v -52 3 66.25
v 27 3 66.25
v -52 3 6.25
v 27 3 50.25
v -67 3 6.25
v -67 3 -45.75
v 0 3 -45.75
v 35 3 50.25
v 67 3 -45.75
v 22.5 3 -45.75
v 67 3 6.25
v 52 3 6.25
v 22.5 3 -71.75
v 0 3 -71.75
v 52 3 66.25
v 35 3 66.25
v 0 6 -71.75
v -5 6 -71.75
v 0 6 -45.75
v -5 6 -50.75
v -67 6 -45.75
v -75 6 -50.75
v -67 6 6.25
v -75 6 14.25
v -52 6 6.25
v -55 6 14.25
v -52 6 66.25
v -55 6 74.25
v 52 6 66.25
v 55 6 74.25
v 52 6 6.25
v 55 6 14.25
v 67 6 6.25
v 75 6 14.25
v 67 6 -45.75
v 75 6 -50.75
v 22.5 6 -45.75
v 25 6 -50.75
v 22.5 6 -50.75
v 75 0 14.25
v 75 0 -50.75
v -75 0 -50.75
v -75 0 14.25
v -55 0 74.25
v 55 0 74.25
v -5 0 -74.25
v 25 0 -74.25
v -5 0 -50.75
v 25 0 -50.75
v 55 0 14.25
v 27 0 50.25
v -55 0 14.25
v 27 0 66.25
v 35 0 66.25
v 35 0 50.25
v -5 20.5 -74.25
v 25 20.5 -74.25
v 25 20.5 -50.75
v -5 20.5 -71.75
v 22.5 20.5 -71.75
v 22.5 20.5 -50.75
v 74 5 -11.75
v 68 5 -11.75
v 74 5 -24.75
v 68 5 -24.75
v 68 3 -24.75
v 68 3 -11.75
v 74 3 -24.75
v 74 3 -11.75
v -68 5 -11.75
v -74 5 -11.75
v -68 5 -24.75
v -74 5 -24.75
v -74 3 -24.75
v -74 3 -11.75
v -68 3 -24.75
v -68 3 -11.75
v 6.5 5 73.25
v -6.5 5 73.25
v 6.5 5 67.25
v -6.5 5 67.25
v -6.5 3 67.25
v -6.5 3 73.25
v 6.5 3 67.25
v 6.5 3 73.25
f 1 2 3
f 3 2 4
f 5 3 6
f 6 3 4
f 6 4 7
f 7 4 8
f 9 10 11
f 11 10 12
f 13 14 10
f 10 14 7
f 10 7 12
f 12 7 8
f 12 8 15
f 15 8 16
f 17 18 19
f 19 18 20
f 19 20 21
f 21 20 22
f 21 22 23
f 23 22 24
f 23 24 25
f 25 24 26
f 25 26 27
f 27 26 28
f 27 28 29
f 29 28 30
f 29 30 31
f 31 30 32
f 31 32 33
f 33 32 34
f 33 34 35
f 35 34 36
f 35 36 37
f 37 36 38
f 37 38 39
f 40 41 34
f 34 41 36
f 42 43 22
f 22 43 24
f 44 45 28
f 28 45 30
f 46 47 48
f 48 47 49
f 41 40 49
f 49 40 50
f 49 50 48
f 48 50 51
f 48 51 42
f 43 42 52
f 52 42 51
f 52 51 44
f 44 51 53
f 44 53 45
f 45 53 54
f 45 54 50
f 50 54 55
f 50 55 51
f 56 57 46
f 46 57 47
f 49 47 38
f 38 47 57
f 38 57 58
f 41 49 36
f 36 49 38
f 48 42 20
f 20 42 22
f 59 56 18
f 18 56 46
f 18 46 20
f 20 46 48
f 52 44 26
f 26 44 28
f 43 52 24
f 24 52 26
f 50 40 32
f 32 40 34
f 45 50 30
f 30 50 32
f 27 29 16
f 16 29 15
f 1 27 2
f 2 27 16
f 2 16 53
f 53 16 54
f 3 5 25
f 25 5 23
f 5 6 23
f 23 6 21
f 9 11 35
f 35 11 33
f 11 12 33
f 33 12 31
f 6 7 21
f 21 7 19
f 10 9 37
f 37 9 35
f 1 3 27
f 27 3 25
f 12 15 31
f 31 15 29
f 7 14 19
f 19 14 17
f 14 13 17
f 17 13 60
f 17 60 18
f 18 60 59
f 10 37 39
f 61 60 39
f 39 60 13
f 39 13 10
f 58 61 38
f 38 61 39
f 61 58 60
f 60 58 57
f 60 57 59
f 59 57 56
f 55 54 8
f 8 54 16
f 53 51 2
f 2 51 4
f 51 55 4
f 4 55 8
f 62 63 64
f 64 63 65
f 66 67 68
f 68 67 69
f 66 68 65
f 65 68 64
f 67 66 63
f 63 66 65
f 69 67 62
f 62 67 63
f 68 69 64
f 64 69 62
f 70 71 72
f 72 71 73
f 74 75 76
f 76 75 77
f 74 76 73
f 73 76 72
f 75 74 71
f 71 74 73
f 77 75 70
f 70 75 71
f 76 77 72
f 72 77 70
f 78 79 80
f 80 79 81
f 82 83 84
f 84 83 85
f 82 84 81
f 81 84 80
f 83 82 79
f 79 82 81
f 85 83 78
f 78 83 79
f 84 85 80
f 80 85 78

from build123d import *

# Parameters (mm, degrees)
CROQUIS1_W              = 150
CROQUIS1_H              = 148.5
SALIENTE_EXTRUIR1_DEPTH = 6
CROQUIS2_W              = 50
CROQUIS2_H              = 23.5
CROQUIS2_W_2            = 70
CROQUIS2_W_3            = 20
CROQUIS2_H_2            = 60
CORTAR_EXTRUIR2_DEPTH   = 8
CORTAR_EXTRUIR3_DEPTH   = 3
CROQUIS4_W              = 134
CROQUIS4_H              = 3
CROQUIS4_W_2            = 5
CROQUIS4_H_2            = 60
CROQUIS4_W_3            = 22.5
CROQUIS4_H_3            = 5.5
CORTAR_EXTRUIR4_DEPTH   = 3
CROQUIS5_W              = 3
CROQUIS5_H              = 20.5
CROQUIS5_W_2            = 5.5
CORTAR_EXTRUIR5_DEPTH   = 3
SALIENTE_EXTRUIR3_DEPTH = 14.5
CROQUIS8_W              = 6
CROQUIS8_H              = 13
CROQUIS8_W_2            = 13
CROQUIS8_H_2            = 6
CORTAR_EXTRUIR6_DEPTH   = 3
CROQUIS9_W              = 8
CROQUIS9_H              = 16
CORTAR_EXTRUIR7_DEPTH   = 107.978093552
SALIENTE_EXTRUIR4_DEPTH = 1


with BuildPart() as part:
    # Croquis1 → Saliente-Extruir1 (new body)
    with BuildSketch(Plane(origin=(0, 0, 0), x_dir=(1, 0, 0), z_dir=(0, 1, 0))):
        Rectangle(CROQUIS1_W, CROQUIS1_H)
    extrude(amount=SALIENTE_EXTRUIR1_DEPTH)

    # Croquis2 → Cortar-Extruir2 (cut)
    with BuildSketch(Plane(origin=(0, 6, 0), x_dir=(1, 0, 0), z_dir=(0, 1, 0))):
        with Locations((50, 62.5)):
            Rectangle(CROQUIS2_W, CROQUIS2_H)
        with Locations((-40, 62.5)):
            Rectangle(CROQUIS2_W_2, CROQUIS2_H)
        with Locations((-65, -44.25)):
            Rectangle(CROQUIS2_W_3, CROQUIS2_H_2)
        with Locations((65, -44.25)):
            Rectangle(CROQUIS2_W_3, CROQUIS2_H_2)
    extrude(amount=-CORTAR_EXTRUIR2_DEPTH, mode=Mode.SUBTRACT)

    # Croquis3 → Cortar-Extruir3 (cut)
    with BuildSketch(Plane(origin=(0, 6, 0), x_dir=(1, 0, 0), z_dir=(0, 1, 0))):
        Polygon((47, -6.25), (67, -6.25), (67, 42.75), (17, 42.75), (17, 66.25), (3, 66.25), (3, 42.75), (-67, 42.75), (-67, -6.25), (-47, -6.25), (-47, -66.25), (47, -66.25), align=None)
    extrude(amount=-CORTAR_EXTRUIR3_DEPTH, mode=Mode.SUBTRACT)

    # Croquis4 → Cortar-Extruir4 (cut)
    with BuildSketch(Plane(origin=(0, 6, 0), x_dir=(1, 0, 0), z_dir=(0, 1, 0))):
        with Locations((0, 44.25)):
            Rectangle(CROQUIS4_W, CROQUIS4_H)
        with Locations((-49.5, -36.25)):
            Rectangle(CROQUIS4_W_2, CROQUIS4_H_2)
        with Locations((49.5, -36.25)):
            Rectangle(CROQUIS4_W_2, CROQUIS4_H_2)
        with Locations((11.25, 69)):
            Rectangle(CROQUIS4_W_3, CROQUIS4_H_3)
    extrude(amount=-CORTAR_EXTRUIR4_DEPTH, mode=Mode.SUBTRACT)

    # Croquis5 → Cortar-Extruir5 (cut)
    with BuildSketch(Plane(origin=(0, 6, 0), x_dir=(1, 0, 0), z_dir=(0, 1, 0))):
        with Locations((1.5, 56)):
            Rectangle(CROQUIS5_W, CROQUIS5_H)
        with Locations((19.75, 56)):
            Rectangle(CROQUIS5_W_2, CROQUIS5_H)
    extrude(amount=-CORTAR_EXTRUIR5_DEPTH, mode=Mode.SUBTRACT)

    # Croquis7 → Saliente-Extruir3 (add)
    with BuildSketch(Plane(origin=(0, 6, 0), x_dir=(1, 0, 0), z_dir=(0, 1, 0))):
        Polygon((25, 50.75), (25, 74.25), (-5, 74.25), (-5, 71.75), (22.5, 71.75), (22.5, 50.75), align=None)
    extrude(amount=SALIENTE_EXTRUIR3_DEPTH)

    # Croquis8 → Cortar-Extruir6 (cut)
    with BuildSketch(Plane(origin=(0, 6, 0), x_dir=(1, 0, 0), z_dir=(0, 1, 0))):
        with Locations((-71, 18.25)):
            Rectangle(CROQUIS8_W, CROQUIS8_H)
        with Locations((71, 18.25)):
            Rectangle(CROQUIS8_W, CROQUIS8_H)
        with Locations((0, -70.25)):
            Rectangle(CROQUIS8_W_2, CROQUIS8_H_2)
    extrude(amount=-CORTAR_EXTRUIR6_DEPTH, mode=Mode.SUBTRACT)

    # Croquis9 → Cortar-Extruir7 (cut, through all)
    with BuildSketch(Plane(origin=(0, 3, 0), x_dir=(1, 0, 0), z_dir=(0, 1, 0))):
        with Locations((31, -58.25)):
            Rectangle(CROQUIS9_W, CROQUIS9_H)
    extrude(amount=-CORTAR_EXTRUIR7_DEPTH, mode=Mode.SUBTRACT)

    # Croquis10 → Saliente-Extruir4 (add)
    with BuildSketch(Plane(origin=(0, 6, 0), x_dir=(1, 0, 0), z_dir=(0, 1, 0))):
        Polygon((25, 50.75), (22.5, 50.75), (22.5, 45.75), (67, 45.75), (67, -6.25), (52, -6.25), (52, -66.25), (-52, -66.25), (-52, -6.25), (-67, -6.25), (-67, 45.75), (0, 45.75), (0, 71.75), (-5, 71.75), (-5, 50.75), (-75, 50.75), (-75, -14.25), (-55, -14.25), (-55, -74.25), (55, -74.25), (55, -14.25), (75, -14.25), (75, 50.75), align=None)
    extrude(amount=-SALIENTE_EXTRUIR4_DEPTH)


solid = part.part
